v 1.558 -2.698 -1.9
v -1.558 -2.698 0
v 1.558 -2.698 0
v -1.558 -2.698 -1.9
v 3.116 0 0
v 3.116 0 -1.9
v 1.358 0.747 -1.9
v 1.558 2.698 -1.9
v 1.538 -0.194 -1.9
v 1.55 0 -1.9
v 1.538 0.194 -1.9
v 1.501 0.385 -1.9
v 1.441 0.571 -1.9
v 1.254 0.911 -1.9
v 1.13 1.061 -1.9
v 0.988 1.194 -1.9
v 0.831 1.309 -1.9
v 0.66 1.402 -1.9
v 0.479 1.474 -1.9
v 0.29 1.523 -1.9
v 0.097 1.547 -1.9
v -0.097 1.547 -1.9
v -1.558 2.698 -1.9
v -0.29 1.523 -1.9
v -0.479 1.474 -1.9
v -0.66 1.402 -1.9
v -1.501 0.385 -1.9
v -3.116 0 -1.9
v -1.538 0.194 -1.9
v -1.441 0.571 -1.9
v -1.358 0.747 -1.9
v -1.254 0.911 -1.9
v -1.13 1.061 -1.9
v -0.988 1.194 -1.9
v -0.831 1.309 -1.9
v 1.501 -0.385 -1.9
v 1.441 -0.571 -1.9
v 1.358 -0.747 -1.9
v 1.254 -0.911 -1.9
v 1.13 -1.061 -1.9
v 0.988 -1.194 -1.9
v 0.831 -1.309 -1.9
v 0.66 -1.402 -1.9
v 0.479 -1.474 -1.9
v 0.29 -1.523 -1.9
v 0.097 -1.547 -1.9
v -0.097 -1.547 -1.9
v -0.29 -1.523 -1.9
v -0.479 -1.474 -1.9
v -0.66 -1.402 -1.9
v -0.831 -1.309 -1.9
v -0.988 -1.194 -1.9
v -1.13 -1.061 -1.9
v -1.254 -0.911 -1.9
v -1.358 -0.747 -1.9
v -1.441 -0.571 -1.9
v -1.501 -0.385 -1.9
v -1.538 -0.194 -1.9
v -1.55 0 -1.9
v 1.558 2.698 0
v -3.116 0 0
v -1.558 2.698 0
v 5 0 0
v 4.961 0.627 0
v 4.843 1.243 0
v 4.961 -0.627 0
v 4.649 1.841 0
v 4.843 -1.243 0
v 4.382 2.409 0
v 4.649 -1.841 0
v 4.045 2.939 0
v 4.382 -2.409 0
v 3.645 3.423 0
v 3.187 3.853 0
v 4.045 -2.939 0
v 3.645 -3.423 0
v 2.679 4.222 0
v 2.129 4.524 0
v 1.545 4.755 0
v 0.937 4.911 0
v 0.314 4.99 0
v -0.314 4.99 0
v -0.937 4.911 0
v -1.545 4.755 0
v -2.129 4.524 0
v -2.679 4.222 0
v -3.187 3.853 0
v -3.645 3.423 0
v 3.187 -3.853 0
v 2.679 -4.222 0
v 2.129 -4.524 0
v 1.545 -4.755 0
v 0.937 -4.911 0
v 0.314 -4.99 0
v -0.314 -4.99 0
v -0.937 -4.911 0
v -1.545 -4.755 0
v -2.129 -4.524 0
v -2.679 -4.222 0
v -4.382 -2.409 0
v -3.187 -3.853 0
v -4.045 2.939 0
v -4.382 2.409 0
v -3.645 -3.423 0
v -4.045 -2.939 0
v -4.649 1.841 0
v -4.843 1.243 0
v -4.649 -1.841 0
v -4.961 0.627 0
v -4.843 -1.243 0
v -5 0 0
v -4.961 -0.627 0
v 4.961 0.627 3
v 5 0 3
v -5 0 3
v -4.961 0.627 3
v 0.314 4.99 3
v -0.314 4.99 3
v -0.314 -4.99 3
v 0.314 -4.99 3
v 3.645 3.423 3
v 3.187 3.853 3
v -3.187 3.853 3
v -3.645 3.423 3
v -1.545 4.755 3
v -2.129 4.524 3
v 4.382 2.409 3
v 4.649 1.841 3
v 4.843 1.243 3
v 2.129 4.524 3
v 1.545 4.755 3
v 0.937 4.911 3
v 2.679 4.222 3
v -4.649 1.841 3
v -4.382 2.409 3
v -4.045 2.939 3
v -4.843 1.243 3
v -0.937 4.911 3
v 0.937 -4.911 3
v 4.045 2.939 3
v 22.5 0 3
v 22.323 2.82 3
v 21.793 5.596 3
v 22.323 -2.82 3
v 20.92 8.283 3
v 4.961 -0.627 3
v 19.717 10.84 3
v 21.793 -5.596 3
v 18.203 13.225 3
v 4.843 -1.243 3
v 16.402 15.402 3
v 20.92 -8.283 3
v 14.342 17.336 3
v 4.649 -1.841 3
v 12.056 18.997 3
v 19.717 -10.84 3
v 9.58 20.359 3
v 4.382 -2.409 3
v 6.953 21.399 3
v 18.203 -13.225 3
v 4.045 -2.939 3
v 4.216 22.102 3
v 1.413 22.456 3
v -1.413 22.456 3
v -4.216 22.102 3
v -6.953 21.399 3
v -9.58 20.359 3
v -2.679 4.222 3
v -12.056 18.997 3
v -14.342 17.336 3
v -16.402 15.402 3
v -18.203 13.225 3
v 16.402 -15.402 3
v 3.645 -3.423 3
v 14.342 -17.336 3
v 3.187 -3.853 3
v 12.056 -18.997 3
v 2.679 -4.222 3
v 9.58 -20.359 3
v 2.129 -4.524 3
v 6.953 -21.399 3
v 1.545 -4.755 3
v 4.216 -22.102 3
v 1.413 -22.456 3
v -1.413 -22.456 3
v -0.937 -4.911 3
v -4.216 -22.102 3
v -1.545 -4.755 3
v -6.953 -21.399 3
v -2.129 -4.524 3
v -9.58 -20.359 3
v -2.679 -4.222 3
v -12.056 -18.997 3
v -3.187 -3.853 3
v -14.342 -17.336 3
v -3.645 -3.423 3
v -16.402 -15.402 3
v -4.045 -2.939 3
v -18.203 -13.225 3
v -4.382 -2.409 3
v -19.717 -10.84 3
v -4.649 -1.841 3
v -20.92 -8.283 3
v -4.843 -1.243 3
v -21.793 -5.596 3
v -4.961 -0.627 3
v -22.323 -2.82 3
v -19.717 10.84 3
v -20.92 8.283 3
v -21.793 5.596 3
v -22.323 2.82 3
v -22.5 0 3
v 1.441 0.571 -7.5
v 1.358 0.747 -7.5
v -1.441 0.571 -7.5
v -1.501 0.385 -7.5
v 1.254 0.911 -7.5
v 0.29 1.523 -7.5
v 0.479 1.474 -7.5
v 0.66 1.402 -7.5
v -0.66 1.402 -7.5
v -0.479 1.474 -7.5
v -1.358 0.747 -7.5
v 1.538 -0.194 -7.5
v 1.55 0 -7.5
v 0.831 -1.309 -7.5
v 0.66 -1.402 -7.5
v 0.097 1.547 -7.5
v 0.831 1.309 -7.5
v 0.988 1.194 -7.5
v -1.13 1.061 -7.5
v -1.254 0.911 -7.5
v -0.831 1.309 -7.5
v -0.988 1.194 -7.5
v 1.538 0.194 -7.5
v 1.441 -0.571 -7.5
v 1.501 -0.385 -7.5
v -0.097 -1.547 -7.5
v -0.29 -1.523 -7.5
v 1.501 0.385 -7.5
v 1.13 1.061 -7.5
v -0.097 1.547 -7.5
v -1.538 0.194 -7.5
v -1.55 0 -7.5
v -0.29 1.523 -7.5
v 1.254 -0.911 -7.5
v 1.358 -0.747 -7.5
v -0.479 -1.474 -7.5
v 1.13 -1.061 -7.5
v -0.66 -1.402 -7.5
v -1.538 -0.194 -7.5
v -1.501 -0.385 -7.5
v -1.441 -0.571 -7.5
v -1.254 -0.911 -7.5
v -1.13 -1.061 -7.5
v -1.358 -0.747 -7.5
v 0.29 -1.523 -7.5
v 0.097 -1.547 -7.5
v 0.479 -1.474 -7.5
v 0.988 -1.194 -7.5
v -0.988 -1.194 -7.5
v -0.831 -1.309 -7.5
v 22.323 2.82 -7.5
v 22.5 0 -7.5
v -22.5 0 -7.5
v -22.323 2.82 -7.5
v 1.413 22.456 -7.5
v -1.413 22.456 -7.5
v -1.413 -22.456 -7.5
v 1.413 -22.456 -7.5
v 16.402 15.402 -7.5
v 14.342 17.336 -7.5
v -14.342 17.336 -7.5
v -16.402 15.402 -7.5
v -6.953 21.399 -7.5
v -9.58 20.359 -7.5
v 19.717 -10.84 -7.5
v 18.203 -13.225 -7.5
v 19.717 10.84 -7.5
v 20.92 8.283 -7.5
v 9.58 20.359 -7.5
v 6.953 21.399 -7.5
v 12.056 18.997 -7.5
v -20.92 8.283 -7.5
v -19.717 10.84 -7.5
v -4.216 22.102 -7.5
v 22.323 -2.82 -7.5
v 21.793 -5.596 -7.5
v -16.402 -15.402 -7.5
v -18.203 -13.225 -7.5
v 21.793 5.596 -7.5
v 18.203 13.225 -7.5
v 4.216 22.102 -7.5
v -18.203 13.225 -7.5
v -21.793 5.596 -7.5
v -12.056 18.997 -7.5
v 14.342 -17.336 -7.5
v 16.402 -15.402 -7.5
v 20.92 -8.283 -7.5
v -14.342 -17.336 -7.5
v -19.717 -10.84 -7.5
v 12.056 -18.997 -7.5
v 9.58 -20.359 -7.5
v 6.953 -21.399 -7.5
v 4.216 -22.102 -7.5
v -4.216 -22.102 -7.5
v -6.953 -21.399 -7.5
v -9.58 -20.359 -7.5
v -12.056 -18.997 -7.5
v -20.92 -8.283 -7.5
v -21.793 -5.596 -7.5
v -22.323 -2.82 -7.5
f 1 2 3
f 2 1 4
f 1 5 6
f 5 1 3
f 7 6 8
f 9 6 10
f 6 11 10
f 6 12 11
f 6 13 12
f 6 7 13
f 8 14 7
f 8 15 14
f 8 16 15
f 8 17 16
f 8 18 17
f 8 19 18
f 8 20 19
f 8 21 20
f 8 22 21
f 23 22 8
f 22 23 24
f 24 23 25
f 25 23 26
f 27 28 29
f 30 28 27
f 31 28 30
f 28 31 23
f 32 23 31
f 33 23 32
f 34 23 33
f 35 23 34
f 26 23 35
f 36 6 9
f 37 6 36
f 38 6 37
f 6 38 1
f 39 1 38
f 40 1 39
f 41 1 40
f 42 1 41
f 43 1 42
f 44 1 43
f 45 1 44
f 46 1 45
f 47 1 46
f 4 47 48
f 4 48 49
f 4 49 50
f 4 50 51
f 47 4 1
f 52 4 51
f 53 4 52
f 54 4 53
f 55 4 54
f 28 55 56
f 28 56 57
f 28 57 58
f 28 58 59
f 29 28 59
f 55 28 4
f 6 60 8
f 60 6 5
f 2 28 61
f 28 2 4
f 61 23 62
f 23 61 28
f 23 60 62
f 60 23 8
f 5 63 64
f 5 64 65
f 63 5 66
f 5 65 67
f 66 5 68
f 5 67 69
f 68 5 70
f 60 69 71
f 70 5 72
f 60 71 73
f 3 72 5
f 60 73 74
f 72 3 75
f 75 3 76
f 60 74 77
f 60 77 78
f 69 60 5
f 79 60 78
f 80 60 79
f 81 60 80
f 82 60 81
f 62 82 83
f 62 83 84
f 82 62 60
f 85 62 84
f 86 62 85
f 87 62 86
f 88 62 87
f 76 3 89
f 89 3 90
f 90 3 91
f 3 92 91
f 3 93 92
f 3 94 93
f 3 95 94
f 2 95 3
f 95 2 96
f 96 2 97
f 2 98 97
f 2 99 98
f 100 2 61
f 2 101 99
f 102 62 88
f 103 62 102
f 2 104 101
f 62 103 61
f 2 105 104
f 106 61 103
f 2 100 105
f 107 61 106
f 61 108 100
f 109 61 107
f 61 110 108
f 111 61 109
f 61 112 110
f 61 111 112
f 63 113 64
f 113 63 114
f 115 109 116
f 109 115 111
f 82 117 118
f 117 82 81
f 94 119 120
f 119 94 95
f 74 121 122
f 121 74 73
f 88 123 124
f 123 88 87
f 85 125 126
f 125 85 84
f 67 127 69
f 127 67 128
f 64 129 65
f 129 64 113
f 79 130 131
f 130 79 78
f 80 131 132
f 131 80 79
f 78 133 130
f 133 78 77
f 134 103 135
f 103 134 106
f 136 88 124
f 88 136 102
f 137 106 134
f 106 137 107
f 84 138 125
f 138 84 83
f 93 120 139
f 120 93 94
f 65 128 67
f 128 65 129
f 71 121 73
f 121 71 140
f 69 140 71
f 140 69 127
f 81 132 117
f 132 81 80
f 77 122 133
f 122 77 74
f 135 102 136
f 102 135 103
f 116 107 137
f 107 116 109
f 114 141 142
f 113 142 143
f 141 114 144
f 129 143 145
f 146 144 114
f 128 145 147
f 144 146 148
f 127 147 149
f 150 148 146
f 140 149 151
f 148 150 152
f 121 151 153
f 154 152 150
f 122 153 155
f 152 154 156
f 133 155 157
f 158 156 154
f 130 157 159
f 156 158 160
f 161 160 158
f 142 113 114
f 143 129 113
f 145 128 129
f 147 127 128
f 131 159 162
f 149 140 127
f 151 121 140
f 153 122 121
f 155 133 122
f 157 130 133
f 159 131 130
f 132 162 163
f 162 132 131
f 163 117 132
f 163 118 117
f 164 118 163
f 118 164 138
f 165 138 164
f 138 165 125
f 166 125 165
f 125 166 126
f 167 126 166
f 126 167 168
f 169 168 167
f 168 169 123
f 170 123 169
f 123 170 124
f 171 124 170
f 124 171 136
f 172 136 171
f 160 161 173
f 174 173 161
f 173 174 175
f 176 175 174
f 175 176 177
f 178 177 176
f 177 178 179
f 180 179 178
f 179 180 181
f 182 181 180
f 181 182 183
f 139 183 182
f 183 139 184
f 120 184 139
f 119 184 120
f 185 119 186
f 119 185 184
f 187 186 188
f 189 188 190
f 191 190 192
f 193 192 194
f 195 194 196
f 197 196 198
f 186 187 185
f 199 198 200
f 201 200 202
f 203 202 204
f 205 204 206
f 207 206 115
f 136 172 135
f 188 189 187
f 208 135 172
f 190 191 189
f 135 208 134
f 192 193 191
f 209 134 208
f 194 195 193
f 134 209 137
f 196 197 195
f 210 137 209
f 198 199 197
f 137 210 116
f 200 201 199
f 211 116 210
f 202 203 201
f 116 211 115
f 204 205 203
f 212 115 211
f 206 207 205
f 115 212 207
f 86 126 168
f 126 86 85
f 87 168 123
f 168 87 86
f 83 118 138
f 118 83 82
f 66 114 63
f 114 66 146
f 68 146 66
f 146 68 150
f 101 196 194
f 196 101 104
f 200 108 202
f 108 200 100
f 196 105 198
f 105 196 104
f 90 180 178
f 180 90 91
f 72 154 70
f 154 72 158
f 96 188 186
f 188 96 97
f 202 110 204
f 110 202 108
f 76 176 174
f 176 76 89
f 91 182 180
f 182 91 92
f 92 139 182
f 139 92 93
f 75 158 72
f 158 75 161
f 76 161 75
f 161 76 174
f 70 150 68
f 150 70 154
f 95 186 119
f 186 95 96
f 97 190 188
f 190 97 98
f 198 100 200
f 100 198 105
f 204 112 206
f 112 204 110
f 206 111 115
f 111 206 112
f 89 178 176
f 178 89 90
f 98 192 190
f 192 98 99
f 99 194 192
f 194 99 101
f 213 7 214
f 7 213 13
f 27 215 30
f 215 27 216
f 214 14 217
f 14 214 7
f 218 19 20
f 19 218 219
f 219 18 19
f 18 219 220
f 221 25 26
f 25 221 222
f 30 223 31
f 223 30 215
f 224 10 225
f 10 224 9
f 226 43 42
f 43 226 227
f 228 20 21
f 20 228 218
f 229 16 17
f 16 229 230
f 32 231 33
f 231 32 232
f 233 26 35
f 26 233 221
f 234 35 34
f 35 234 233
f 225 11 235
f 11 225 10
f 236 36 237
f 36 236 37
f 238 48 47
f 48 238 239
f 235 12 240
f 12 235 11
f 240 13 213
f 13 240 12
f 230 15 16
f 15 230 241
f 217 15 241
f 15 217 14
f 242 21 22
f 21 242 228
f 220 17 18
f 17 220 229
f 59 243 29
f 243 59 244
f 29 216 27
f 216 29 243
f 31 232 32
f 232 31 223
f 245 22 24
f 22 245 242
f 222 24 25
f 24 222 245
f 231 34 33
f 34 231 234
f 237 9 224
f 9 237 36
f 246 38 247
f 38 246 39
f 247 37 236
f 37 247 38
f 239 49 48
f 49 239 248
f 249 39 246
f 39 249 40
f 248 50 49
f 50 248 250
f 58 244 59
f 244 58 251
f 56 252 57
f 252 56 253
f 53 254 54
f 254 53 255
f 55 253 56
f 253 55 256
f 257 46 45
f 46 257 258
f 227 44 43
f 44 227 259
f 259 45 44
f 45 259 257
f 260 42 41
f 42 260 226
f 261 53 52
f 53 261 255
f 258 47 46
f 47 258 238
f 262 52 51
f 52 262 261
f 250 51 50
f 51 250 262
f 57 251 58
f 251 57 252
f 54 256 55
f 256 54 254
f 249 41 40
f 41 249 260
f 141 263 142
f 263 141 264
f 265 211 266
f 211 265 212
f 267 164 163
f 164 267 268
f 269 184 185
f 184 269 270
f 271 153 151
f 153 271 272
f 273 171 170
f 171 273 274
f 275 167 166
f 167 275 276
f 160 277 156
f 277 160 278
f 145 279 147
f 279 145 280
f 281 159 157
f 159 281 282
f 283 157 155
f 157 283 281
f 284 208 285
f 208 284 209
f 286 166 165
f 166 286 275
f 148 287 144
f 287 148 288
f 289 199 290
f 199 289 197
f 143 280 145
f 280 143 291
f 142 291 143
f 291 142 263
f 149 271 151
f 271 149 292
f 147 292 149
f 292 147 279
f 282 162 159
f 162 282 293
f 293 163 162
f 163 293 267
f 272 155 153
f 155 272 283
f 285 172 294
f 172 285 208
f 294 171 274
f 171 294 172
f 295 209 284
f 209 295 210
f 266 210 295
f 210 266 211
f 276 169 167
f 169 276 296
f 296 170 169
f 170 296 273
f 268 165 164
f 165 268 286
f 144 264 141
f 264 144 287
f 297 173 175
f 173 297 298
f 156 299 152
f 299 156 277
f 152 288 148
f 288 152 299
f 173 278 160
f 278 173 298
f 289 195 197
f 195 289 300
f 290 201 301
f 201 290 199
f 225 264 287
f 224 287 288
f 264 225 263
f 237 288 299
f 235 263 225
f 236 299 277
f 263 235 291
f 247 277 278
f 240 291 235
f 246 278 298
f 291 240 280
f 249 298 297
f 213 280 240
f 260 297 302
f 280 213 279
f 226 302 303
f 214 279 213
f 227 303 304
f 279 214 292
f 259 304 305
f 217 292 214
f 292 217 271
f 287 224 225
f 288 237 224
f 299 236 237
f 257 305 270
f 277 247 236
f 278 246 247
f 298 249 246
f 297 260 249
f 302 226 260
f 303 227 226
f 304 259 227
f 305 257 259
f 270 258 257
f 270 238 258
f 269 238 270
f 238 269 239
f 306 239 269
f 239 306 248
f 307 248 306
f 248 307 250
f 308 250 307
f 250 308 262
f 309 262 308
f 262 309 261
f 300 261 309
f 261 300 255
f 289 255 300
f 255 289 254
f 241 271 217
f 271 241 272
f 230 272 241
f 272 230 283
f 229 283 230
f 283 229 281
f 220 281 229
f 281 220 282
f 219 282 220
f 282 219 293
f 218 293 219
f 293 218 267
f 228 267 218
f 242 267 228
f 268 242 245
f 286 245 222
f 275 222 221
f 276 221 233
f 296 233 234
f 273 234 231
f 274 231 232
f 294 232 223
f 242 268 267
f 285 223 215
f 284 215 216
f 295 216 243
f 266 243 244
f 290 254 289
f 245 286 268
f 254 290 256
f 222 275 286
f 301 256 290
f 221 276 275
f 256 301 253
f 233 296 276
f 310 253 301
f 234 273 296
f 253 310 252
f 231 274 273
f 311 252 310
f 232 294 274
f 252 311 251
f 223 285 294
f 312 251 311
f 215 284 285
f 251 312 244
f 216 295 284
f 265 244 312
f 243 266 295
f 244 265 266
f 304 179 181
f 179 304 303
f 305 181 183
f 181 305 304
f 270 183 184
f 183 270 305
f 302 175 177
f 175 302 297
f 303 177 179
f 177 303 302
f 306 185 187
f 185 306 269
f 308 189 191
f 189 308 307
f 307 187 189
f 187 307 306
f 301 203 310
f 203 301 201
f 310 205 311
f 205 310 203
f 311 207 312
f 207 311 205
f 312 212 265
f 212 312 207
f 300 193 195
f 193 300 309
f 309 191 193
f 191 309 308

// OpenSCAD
$fn = 50;

difference() {
	union() {
		translate(v = [0, 0, -7.5]) {
			cylinder(h = 10.5, r = 22.5);
		}
	}
	union() {
		translate(v = [0, 0, 0]) {
			rotate(a = [0, 0, 0]) {
				difference() {
					union() {
						translate(v = [0, 0, -1.9]) {
							linear_extrude(height = 1.9) {
								polygon(points = [[3.1158, 0.0], [1.5579000000000005, 2.698361953111554], [-1.5578999999999994, 2.6983619531115544], [-3.1158, 3.815754496783323e-16], [-1.5579000000000014, -2.6983619531115535], [1.557899999999998, -2.6983619531115552]]);
							}
						}
					}
					union();
				}
			}
		}
		#cylinder(h = 3, r = 5.0);
		#translate(v = [0, 0, -100.0]) {
			cylinder(h = 200, r = 1.55);
		}
	}
}
